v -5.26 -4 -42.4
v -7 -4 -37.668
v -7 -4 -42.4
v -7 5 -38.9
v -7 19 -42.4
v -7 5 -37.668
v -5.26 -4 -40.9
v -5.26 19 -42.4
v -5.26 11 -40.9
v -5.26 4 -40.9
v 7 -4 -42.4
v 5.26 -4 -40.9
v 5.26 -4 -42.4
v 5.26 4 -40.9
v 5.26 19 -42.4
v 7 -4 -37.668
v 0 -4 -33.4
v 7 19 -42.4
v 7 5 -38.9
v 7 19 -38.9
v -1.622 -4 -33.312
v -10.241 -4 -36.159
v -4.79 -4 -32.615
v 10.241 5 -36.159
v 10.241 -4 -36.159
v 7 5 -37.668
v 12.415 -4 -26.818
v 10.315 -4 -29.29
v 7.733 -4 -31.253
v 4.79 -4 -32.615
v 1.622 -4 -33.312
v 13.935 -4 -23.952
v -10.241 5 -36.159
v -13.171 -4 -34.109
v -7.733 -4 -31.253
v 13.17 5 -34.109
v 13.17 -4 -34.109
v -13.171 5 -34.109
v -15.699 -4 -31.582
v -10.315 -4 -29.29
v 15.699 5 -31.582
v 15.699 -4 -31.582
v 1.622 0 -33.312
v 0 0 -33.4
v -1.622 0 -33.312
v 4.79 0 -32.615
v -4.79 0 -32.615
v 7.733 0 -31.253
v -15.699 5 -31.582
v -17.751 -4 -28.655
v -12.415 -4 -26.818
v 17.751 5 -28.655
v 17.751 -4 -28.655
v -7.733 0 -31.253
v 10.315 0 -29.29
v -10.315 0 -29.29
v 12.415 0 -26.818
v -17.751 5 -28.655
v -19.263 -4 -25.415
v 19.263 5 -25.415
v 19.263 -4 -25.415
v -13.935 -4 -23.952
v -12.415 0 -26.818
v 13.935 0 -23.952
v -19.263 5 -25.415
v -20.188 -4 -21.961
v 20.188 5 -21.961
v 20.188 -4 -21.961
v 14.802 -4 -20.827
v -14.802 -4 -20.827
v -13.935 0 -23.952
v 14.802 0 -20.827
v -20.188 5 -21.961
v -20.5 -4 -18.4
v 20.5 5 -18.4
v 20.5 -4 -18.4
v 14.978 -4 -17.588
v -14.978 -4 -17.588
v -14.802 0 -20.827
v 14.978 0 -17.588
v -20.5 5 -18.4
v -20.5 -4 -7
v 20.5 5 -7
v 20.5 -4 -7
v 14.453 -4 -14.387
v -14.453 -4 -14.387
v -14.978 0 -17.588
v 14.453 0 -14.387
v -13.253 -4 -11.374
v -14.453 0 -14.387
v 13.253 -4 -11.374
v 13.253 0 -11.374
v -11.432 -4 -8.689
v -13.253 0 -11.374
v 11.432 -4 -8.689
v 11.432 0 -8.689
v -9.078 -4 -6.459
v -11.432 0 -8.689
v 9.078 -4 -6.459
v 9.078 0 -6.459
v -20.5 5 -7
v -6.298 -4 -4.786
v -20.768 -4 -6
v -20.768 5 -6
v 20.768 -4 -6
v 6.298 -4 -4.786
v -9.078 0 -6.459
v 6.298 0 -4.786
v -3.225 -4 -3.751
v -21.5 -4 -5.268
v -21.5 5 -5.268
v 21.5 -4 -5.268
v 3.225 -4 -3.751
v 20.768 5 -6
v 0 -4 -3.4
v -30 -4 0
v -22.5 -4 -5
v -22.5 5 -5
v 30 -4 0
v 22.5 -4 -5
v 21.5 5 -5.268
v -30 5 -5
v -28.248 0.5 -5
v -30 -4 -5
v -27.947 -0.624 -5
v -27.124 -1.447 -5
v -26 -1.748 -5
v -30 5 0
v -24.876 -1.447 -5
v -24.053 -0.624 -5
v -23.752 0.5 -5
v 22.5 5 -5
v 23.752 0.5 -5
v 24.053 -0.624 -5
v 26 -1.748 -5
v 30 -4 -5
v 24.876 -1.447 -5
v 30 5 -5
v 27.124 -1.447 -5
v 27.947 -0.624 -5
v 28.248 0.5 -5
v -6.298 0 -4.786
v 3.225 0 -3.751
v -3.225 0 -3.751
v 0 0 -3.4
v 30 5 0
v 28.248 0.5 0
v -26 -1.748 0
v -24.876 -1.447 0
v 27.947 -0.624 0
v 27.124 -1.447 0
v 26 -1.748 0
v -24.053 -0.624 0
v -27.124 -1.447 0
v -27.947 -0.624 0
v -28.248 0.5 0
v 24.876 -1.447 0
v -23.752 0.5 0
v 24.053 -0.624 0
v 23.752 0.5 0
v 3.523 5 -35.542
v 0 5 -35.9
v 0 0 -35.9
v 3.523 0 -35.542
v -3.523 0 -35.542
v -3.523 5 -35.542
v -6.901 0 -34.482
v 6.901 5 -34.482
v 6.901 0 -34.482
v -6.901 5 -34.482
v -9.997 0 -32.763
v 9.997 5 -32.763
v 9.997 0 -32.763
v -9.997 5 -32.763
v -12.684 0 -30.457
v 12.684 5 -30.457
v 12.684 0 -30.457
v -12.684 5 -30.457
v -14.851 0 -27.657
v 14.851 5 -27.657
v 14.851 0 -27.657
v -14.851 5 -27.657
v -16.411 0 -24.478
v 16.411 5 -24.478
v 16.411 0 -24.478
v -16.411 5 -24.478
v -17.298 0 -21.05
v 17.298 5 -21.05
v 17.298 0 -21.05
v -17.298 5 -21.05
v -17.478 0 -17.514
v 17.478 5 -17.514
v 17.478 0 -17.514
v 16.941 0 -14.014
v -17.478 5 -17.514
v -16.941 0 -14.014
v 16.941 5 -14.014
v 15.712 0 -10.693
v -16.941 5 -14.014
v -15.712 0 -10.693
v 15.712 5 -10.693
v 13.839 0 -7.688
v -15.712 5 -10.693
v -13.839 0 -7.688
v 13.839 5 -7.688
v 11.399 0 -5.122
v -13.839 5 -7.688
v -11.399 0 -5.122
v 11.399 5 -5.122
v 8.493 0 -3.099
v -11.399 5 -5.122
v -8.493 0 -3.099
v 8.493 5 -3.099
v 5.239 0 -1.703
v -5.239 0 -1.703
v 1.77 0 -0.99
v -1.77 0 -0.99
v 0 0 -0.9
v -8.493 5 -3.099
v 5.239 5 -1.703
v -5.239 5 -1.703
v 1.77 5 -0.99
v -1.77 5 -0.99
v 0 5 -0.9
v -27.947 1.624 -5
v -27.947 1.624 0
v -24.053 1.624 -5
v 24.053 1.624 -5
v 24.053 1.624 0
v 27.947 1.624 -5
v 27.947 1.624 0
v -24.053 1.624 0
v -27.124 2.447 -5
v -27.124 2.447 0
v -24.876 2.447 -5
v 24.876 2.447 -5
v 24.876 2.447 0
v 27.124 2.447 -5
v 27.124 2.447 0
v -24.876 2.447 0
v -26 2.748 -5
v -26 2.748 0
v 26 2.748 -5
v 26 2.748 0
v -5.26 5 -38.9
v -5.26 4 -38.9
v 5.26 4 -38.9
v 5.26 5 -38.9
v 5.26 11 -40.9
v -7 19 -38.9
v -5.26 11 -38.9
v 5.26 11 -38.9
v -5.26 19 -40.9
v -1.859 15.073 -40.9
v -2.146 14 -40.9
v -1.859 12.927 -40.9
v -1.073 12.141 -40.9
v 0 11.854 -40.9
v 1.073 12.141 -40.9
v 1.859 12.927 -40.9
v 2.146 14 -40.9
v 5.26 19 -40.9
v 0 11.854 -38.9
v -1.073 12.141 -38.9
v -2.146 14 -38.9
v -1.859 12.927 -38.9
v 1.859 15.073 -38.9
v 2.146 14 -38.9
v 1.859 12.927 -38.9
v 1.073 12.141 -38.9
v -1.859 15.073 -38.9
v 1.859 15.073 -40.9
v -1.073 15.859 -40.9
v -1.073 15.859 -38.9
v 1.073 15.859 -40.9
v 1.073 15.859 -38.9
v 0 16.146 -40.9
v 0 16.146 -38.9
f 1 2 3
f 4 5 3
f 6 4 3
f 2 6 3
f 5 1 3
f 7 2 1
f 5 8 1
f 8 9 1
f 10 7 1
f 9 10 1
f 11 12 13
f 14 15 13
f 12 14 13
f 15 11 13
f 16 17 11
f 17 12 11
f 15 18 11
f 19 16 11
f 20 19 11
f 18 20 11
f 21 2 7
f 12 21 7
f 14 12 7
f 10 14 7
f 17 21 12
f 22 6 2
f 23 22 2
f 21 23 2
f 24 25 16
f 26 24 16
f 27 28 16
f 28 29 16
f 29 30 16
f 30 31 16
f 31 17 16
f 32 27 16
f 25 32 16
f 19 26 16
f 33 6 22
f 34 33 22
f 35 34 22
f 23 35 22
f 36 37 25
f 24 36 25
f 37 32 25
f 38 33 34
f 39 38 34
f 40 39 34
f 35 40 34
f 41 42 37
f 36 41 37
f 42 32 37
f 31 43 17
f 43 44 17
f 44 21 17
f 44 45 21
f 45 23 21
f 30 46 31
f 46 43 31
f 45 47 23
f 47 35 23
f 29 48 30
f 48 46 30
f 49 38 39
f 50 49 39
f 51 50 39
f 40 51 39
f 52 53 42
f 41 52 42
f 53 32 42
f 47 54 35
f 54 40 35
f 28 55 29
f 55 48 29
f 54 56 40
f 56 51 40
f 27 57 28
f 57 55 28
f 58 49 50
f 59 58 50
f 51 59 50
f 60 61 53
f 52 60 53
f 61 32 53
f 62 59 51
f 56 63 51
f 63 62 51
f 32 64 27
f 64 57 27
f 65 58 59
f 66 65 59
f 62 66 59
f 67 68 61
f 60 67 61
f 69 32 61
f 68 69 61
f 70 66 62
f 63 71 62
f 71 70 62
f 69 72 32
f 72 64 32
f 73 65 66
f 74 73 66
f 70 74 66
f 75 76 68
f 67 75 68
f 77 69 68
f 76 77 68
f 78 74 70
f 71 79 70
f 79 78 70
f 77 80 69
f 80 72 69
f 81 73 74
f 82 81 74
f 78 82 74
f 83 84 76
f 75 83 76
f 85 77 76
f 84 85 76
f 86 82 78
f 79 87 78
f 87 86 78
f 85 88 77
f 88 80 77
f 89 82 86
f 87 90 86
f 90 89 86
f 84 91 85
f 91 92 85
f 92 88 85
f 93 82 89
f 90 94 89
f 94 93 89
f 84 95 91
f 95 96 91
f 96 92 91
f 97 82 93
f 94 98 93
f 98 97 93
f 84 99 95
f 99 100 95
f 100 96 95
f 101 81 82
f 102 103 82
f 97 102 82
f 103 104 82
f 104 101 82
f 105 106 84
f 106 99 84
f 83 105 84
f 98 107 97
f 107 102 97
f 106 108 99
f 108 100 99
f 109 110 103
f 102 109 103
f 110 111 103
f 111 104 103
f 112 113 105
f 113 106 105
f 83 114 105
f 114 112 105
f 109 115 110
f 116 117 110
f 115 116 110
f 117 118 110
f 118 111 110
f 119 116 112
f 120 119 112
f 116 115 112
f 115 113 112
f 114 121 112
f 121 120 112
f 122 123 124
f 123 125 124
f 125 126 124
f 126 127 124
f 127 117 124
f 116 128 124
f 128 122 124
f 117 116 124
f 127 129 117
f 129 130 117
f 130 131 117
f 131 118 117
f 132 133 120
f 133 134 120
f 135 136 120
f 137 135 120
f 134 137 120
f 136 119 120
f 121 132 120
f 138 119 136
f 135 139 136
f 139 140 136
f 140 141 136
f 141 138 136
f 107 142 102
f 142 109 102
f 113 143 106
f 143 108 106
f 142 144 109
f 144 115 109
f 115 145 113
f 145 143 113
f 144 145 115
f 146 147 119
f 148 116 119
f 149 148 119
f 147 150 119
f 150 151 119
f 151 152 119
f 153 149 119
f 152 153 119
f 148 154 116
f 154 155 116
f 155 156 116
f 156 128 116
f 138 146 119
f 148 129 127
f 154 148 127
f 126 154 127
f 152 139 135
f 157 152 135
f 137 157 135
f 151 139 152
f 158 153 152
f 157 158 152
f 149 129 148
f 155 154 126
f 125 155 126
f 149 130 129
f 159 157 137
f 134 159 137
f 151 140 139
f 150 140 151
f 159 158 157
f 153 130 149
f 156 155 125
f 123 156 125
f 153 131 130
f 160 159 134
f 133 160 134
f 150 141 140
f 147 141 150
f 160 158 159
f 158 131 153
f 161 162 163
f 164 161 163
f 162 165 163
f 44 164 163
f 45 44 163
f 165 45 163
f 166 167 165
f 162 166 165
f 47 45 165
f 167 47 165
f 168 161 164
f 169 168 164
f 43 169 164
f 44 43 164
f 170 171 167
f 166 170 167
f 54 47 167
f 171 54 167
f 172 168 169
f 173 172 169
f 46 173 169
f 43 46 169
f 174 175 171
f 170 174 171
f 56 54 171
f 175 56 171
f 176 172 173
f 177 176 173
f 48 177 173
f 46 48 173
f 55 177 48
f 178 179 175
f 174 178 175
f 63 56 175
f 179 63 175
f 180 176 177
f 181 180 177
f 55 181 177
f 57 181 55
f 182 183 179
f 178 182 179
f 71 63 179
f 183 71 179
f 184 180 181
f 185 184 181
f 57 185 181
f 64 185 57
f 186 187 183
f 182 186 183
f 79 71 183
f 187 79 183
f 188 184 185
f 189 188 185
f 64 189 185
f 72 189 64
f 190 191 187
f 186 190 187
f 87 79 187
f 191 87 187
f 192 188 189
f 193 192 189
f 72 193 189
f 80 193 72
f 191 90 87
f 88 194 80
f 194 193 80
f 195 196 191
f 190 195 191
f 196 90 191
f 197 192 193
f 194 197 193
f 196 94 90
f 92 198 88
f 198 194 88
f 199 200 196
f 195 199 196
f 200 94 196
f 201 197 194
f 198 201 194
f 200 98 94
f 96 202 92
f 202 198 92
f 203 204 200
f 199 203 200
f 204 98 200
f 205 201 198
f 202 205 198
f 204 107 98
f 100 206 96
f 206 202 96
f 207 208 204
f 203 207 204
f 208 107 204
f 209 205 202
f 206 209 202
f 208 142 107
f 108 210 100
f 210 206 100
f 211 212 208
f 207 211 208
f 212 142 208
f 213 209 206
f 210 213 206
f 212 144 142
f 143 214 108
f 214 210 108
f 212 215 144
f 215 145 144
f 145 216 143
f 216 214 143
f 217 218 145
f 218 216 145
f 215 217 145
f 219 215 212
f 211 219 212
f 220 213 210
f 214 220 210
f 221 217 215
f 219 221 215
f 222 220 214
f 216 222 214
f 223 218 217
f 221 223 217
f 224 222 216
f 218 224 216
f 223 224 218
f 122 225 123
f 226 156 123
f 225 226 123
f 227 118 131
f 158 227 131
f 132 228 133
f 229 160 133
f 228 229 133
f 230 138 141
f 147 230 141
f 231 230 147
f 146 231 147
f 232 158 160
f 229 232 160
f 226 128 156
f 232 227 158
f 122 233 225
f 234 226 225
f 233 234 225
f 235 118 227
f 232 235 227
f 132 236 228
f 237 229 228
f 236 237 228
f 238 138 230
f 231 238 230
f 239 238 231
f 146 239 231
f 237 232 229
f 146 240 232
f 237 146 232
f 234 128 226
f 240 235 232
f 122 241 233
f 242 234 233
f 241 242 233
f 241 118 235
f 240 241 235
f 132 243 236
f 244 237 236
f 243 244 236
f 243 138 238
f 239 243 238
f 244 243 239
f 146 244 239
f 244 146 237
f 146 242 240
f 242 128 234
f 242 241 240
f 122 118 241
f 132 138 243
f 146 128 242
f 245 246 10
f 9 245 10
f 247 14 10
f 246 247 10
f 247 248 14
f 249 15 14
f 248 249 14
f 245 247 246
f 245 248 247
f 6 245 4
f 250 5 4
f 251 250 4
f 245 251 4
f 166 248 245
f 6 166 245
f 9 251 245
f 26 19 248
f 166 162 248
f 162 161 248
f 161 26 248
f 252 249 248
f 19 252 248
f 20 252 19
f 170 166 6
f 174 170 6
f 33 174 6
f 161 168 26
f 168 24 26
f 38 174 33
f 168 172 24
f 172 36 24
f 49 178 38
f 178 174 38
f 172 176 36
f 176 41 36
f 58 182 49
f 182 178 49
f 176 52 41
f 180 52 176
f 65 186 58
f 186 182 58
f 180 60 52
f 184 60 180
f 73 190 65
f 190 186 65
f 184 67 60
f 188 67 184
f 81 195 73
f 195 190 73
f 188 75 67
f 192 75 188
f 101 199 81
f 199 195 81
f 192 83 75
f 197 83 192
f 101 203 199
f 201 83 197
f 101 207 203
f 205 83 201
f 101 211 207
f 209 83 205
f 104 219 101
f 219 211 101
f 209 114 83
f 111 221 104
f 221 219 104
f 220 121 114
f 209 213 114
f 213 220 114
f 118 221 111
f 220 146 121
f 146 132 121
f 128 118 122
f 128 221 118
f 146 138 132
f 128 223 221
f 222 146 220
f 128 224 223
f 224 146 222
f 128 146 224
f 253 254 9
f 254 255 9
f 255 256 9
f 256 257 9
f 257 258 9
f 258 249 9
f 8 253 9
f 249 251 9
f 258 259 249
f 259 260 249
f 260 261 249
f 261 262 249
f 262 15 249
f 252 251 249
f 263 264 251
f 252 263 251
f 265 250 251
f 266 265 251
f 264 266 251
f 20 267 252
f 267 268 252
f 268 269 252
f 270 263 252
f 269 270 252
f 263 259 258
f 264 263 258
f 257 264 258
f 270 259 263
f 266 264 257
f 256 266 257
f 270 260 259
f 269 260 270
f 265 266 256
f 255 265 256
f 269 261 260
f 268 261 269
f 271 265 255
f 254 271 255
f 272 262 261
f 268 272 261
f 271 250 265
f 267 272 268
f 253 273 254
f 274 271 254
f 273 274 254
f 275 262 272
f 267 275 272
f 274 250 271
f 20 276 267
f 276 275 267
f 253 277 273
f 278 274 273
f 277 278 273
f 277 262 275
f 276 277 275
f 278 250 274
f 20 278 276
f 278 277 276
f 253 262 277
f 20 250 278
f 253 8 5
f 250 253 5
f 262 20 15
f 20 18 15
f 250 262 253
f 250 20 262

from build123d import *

# Parameters (mm, degrees)
SKETCH1_R                 = 17.5
BOSS_EXTRUDE1_DEPTH       = 5
SKETCH3_R                 = 15
BOSS_EXTRUDE2_DEPTH       = 4
FILLET2_R                 = 2
F_8_CLEARANCE_HOLE1_D     = 4.4958
F_8_CLEARANCE_HOLE1_DEPTH = 23.75
F_8_CLEARANCE_HOLE1_TIP   = 1.350674586
BOSS_EXTRUDE3_DEPTH       = 9
BOSS_EXTRUDE4_DEPTH       = 14
SKETCH8_R                 = 2.1463
CUT_EXTRUDE1_DEPTH        = 41.9
SKETCH9_W                 = 10.52
SKETCH9_H                 = 7
CUT_EXTRUDE2_DEPTH        = 2


with BuildPart() as part:
    # Sketch1 → Boss-Extrude1 (new body)
    with BuildSketch(Plane(origin=(0, 0, 0), x_dir=(1, 0, 0), z_dir=(0, 1, 0))):
        with BuildLine():
            ThreePointArc((-20.5, 18.4), (0, 38.9), (20.5, 18.4))
            Line((20.5, 18.4), (20.5, 5))
            Line((20.5, 5), (30, 5))
            Line((30, 5), (30, 0))
            Line((30, 0), (0, 0))
            Line((0, 0), (-30, 0))
            Line((-30, 0), (-30, 5))
            Line((-30, 5), (-20.5, 5))
            Line((-20.5, 5), (-20.5, 18.4))
        make_face()
        with Locations((0, 18.4)):
            Circle(SKETCH1_R, mode=Mode.SUBTRACT)
    extrude(amount=BOSS_EXTRUDE1_DEPTH)

    # Sketch3 → Boss-Extrude2 (add)
    with BuildSketch(Plane.XZ):
        with BuildLine():
            Line((20.5, -18.4), (20.5, -5))
            Line((20.5, -5), (30, -5))
            Line((30, -5), (30, 0))
            Line((30, 0), (-30, 0))
            Line((-30, 0), (-30, -5))
            Line((-30, -5), (-20.5, -5))
            Line((-20.5, -5), (-20.5, -18.4))
            ThreePointArc((-20.5, -18.4), (0, -38.9), (20.5, -18.4))
        make_face()
        with Locations((0, -18.4)):
            Circle(SKETCH3_R, mode=Mode.SUBTRACT)
    extrude(amount=BOSS_EXTRUDE2_DEPTH)

    # Fillet2
    fillet2_edges = [part.edges().sort_by_distance(p)[0] for p in [
        (20.5, 0.5, -5),
        (-20.5, 0.5, -5),
    ]]
    fillet(fillet2_edges, radius=FILLET2_R)

    # #8 Clearance Hole1
    with Locations(Plane(origin=(0, 0, -5), x_dir=(-1, 0, 0), z_dir=(0, 0, -1))):
        with Locations((-26, 0.5), (26, 0.5)):
            Hole(F_8_CLEARANCE_HOLE1_D / 2, depth=F_8_CLEARANCE_HOLE1_DEPTH)
            with Locations((0, 0, -(F_8_CLEARANCE_HOLE1_DEPTH + F_8_CLEARANCE_HOLE1_TIP / 2))):  # 118° drill point
                Cone(0, F_8_CLEARANCE_HOLE1_D / 2, F_8_CLEARANCE_HOLE1_TIP, mode=Mode.SUBTRACT)

    # Sketch6 → Boss-Extrude3 (add)
    with BuildSketch(Plane.XZ.offset(4)):
        with BuildLine():
            Line((7, -37.667848868), (7, -42.4))
            Line((7, -42.4), (5.26, -42.4))
            Line((5.26, -42.4), (5.26, -40.9))
            Line((5.26, -40.9), (-5.26, -40.9))
            Line((-5.26, -40.9), (-5.26, -42.4))
            Line((-5.26, -42.4), (-7, -42.4))
            Line((-7, -42.4), (-7, -37.667848868))
            ThreePointArc((-7, -37.667848868), (0, -38.9), (7, -37.667848868))
        make_face()
    extrude(amount=-BOSS_EXTRUDE3_DEPTH)

    # Sketch7 → Boss-Extrude4 (add)
    with BuildSketch(Plane(origin=(0, 5, 0), x_dir=(1, 0, 0), z_dir=(0, 1, 0))):
        Polygon((5.26, 42.4), (7, 42.4), (7, 38.9), (-7, 38.9), (-7, 42.4), (-5.26, 42.4), (-5.26, 40.9), (5.26, 40.9), align=None)
    extrude(amount=BOSS_EXTRUDE4_DEPTH)

    # Sketch8 → Cut-Extrude1 (cut, through all)
    with BuildSketch(Plane(origin=(0, 0, -40.9), x_dir=(-1, 0, 0), z_dir=(0, 0, -1))):
        with Locations((0, 14)):
            Circle(SKETCH8_R)
    extrude(amount=-CUT_EXTRUDE1_DEPTH, mode=Mode.SUBTRACT)

    # Sketch9 → Cut-Extrude2 (cut)
    with BuildSketch(Plane(origin=(0, 0, -40.9), x_dir=(-1, 0, 0), z_dir=(0, 0, -1))):
        with Locations((0, 7.5)):
            Rectangle(SKETCH9_W, SKETCH9_H)
    extrude(amount=-CUT_EXTRUDE2_DEPTH, mode=Mode.SUBTRACT)


solid = part.part
